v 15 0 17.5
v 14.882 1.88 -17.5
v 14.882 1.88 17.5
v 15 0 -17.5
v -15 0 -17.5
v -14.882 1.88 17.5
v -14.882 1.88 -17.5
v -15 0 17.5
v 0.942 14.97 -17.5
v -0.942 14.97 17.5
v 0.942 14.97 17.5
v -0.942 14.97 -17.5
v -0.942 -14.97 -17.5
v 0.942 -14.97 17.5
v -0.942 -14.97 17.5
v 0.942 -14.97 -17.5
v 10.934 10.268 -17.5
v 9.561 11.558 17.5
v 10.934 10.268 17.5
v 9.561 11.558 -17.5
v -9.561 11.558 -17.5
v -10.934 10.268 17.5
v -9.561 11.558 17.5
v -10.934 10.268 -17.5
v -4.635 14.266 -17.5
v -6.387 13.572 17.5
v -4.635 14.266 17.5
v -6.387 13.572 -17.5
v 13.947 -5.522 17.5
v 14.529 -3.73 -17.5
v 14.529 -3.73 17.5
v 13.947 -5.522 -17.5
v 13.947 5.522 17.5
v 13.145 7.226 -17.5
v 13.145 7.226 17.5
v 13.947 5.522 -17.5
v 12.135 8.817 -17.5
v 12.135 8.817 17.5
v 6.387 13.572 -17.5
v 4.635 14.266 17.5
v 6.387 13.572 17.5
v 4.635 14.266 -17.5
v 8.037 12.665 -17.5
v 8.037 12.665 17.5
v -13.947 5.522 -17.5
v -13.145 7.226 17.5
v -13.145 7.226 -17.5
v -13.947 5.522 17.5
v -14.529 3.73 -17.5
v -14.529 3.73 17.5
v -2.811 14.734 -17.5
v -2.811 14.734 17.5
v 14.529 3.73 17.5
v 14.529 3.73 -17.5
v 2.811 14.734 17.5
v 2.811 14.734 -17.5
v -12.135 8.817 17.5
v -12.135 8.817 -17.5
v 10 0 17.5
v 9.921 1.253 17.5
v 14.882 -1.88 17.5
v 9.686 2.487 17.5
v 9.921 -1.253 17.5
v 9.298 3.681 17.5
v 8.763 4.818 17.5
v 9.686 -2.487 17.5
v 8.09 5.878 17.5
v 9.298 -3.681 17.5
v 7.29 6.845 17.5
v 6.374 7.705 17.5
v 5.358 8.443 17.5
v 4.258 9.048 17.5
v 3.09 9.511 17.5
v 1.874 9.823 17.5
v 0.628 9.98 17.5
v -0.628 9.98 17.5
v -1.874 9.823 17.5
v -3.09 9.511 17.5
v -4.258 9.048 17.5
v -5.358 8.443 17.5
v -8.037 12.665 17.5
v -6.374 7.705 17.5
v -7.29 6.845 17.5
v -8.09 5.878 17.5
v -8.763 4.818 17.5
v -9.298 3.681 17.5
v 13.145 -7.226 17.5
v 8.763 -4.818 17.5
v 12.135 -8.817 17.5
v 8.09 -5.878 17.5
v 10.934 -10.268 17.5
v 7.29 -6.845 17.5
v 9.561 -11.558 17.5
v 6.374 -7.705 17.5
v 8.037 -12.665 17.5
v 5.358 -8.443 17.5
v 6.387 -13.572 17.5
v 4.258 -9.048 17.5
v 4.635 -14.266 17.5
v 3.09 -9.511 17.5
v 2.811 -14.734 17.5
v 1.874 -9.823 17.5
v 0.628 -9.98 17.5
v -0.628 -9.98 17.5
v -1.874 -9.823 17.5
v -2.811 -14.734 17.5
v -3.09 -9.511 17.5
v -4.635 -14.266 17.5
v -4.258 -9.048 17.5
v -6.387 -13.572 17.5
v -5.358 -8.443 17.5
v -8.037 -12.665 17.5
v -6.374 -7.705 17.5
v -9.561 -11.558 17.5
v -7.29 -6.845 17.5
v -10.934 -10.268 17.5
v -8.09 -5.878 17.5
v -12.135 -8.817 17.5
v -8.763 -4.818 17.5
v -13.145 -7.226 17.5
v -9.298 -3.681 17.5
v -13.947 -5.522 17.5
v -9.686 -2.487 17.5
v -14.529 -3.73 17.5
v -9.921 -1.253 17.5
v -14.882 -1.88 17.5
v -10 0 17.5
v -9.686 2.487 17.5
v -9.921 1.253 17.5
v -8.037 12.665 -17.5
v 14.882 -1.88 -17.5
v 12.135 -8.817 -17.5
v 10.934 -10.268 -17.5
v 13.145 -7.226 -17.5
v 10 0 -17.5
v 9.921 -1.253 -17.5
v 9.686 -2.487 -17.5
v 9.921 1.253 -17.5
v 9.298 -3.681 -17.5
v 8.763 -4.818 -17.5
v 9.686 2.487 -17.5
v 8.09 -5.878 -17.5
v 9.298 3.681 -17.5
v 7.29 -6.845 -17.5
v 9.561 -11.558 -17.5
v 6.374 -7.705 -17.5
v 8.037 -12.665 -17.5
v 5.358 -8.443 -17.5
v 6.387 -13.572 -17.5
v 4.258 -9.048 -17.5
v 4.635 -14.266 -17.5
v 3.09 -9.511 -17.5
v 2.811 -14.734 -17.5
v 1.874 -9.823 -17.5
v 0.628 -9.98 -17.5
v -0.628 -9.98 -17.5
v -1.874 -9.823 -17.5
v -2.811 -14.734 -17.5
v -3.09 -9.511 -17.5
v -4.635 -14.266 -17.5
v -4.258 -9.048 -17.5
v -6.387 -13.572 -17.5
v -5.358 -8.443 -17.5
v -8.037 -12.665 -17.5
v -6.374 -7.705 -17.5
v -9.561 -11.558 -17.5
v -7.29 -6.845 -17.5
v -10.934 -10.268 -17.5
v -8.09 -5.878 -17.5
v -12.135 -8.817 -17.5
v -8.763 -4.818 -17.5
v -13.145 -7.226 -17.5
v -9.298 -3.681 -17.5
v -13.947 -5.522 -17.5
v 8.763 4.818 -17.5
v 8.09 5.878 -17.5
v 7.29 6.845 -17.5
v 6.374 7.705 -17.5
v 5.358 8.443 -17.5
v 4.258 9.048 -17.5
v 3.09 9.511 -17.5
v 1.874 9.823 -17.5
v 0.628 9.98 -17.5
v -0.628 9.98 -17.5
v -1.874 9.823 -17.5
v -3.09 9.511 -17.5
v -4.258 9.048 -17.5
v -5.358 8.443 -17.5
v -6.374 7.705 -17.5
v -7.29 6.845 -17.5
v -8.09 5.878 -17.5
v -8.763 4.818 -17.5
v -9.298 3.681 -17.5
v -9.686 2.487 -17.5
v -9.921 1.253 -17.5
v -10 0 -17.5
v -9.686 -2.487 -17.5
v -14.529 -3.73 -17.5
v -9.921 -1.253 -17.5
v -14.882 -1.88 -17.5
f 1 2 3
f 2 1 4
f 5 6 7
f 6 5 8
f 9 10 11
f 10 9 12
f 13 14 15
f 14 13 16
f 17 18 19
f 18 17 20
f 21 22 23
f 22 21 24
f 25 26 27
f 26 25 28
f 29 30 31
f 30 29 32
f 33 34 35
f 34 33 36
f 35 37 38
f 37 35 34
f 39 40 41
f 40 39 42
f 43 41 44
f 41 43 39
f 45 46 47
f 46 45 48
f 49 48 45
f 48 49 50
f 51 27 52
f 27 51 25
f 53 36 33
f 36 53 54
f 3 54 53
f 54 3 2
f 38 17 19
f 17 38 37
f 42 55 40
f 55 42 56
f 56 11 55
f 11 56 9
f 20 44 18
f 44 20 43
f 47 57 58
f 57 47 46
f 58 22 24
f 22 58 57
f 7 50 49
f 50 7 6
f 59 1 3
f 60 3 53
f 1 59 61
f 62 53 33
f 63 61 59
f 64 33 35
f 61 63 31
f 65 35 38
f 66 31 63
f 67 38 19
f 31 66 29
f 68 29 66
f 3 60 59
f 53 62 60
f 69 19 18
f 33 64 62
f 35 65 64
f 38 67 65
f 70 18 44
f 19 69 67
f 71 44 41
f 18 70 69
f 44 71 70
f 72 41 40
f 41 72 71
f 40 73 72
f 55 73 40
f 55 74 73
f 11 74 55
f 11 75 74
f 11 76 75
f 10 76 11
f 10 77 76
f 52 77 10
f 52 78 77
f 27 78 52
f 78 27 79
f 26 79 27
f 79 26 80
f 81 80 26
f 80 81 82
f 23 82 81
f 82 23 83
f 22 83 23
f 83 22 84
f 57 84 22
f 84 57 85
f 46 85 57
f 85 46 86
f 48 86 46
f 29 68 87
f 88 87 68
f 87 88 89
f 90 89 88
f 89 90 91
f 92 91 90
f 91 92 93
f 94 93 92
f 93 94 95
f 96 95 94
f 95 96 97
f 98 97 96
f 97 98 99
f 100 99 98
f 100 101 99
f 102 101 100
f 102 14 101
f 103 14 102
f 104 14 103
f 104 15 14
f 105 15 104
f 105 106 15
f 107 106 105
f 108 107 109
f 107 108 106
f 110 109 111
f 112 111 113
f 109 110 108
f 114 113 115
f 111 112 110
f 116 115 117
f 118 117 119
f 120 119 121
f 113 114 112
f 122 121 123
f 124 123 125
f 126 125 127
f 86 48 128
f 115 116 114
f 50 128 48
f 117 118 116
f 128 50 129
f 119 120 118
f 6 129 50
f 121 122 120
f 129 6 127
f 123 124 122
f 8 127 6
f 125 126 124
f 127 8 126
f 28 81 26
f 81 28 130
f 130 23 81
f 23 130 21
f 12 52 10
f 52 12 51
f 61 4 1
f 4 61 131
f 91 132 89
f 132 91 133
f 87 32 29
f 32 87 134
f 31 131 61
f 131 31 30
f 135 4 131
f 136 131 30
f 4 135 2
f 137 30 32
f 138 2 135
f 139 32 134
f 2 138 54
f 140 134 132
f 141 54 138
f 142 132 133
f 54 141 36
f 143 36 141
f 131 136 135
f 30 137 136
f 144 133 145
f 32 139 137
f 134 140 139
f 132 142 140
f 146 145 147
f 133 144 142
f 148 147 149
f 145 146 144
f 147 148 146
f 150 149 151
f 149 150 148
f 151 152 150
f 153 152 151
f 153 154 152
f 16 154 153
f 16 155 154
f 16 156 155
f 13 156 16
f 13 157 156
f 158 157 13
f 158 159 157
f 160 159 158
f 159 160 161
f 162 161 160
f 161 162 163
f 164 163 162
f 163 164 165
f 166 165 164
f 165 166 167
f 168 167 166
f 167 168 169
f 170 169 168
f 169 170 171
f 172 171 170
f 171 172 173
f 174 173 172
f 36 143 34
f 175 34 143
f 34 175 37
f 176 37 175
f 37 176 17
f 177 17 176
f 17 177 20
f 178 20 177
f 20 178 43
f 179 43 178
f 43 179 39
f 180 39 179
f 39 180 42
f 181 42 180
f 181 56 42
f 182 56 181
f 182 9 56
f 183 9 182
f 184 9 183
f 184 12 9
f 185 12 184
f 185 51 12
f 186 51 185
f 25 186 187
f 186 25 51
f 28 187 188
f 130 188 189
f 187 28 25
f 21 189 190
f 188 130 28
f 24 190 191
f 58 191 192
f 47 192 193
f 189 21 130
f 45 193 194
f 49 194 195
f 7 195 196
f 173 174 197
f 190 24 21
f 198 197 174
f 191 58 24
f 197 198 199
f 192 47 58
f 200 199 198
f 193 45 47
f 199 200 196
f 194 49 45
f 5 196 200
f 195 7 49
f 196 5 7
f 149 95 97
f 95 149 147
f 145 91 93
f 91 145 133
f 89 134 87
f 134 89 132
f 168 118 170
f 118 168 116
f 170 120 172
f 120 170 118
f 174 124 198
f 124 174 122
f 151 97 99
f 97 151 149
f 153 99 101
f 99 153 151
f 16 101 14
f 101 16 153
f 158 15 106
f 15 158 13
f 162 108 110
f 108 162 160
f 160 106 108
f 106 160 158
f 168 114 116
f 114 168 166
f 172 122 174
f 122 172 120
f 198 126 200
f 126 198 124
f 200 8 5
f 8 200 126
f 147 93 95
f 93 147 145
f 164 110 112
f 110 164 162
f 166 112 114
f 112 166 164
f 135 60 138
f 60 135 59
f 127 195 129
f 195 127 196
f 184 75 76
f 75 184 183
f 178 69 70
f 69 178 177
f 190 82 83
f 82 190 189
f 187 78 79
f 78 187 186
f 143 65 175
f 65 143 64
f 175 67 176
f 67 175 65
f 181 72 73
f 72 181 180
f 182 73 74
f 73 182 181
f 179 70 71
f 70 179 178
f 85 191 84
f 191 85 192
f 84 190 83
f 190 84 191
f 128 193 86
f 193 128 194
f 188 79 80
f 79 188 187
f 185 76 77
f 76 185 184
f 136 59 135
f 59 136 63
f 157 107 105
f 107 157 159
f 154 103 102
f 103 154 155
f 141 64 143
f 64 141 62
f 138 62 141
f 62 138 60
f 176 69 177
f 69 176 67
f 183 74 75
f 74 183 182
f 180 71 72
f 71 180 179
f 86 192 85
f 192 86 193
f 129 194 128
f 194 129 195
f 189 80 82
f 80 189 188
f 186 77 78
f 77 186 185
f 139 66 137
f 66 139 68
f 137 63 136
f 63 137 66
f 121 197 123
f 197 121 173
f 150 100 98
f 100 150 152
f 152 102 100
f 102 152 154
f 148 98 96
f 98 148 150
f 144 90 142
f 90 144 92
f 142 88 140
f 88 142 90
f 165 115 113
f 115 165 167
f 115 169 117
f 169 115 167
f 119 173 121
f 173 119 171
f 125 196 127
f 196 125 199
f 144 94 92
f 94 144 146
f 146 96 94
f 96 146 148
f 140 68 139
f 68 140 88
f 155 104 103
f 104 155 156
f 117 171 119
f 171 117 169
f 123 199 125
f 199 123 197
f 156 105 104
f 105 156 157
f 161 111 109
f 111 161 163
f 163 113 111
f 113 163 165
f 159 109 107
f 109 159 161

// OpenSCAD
$fn = 50;


difference() {
	union() {
		translate(v = [0, 0, -17.5000000000]) {
			cylinder(h = 35, r = 15.0000000000);
		}
	}
	union() {
		translate(v = [0, 0, -100.0000000000]) {
			cylinder(h = 200, r = 10);
		}
	}
}
